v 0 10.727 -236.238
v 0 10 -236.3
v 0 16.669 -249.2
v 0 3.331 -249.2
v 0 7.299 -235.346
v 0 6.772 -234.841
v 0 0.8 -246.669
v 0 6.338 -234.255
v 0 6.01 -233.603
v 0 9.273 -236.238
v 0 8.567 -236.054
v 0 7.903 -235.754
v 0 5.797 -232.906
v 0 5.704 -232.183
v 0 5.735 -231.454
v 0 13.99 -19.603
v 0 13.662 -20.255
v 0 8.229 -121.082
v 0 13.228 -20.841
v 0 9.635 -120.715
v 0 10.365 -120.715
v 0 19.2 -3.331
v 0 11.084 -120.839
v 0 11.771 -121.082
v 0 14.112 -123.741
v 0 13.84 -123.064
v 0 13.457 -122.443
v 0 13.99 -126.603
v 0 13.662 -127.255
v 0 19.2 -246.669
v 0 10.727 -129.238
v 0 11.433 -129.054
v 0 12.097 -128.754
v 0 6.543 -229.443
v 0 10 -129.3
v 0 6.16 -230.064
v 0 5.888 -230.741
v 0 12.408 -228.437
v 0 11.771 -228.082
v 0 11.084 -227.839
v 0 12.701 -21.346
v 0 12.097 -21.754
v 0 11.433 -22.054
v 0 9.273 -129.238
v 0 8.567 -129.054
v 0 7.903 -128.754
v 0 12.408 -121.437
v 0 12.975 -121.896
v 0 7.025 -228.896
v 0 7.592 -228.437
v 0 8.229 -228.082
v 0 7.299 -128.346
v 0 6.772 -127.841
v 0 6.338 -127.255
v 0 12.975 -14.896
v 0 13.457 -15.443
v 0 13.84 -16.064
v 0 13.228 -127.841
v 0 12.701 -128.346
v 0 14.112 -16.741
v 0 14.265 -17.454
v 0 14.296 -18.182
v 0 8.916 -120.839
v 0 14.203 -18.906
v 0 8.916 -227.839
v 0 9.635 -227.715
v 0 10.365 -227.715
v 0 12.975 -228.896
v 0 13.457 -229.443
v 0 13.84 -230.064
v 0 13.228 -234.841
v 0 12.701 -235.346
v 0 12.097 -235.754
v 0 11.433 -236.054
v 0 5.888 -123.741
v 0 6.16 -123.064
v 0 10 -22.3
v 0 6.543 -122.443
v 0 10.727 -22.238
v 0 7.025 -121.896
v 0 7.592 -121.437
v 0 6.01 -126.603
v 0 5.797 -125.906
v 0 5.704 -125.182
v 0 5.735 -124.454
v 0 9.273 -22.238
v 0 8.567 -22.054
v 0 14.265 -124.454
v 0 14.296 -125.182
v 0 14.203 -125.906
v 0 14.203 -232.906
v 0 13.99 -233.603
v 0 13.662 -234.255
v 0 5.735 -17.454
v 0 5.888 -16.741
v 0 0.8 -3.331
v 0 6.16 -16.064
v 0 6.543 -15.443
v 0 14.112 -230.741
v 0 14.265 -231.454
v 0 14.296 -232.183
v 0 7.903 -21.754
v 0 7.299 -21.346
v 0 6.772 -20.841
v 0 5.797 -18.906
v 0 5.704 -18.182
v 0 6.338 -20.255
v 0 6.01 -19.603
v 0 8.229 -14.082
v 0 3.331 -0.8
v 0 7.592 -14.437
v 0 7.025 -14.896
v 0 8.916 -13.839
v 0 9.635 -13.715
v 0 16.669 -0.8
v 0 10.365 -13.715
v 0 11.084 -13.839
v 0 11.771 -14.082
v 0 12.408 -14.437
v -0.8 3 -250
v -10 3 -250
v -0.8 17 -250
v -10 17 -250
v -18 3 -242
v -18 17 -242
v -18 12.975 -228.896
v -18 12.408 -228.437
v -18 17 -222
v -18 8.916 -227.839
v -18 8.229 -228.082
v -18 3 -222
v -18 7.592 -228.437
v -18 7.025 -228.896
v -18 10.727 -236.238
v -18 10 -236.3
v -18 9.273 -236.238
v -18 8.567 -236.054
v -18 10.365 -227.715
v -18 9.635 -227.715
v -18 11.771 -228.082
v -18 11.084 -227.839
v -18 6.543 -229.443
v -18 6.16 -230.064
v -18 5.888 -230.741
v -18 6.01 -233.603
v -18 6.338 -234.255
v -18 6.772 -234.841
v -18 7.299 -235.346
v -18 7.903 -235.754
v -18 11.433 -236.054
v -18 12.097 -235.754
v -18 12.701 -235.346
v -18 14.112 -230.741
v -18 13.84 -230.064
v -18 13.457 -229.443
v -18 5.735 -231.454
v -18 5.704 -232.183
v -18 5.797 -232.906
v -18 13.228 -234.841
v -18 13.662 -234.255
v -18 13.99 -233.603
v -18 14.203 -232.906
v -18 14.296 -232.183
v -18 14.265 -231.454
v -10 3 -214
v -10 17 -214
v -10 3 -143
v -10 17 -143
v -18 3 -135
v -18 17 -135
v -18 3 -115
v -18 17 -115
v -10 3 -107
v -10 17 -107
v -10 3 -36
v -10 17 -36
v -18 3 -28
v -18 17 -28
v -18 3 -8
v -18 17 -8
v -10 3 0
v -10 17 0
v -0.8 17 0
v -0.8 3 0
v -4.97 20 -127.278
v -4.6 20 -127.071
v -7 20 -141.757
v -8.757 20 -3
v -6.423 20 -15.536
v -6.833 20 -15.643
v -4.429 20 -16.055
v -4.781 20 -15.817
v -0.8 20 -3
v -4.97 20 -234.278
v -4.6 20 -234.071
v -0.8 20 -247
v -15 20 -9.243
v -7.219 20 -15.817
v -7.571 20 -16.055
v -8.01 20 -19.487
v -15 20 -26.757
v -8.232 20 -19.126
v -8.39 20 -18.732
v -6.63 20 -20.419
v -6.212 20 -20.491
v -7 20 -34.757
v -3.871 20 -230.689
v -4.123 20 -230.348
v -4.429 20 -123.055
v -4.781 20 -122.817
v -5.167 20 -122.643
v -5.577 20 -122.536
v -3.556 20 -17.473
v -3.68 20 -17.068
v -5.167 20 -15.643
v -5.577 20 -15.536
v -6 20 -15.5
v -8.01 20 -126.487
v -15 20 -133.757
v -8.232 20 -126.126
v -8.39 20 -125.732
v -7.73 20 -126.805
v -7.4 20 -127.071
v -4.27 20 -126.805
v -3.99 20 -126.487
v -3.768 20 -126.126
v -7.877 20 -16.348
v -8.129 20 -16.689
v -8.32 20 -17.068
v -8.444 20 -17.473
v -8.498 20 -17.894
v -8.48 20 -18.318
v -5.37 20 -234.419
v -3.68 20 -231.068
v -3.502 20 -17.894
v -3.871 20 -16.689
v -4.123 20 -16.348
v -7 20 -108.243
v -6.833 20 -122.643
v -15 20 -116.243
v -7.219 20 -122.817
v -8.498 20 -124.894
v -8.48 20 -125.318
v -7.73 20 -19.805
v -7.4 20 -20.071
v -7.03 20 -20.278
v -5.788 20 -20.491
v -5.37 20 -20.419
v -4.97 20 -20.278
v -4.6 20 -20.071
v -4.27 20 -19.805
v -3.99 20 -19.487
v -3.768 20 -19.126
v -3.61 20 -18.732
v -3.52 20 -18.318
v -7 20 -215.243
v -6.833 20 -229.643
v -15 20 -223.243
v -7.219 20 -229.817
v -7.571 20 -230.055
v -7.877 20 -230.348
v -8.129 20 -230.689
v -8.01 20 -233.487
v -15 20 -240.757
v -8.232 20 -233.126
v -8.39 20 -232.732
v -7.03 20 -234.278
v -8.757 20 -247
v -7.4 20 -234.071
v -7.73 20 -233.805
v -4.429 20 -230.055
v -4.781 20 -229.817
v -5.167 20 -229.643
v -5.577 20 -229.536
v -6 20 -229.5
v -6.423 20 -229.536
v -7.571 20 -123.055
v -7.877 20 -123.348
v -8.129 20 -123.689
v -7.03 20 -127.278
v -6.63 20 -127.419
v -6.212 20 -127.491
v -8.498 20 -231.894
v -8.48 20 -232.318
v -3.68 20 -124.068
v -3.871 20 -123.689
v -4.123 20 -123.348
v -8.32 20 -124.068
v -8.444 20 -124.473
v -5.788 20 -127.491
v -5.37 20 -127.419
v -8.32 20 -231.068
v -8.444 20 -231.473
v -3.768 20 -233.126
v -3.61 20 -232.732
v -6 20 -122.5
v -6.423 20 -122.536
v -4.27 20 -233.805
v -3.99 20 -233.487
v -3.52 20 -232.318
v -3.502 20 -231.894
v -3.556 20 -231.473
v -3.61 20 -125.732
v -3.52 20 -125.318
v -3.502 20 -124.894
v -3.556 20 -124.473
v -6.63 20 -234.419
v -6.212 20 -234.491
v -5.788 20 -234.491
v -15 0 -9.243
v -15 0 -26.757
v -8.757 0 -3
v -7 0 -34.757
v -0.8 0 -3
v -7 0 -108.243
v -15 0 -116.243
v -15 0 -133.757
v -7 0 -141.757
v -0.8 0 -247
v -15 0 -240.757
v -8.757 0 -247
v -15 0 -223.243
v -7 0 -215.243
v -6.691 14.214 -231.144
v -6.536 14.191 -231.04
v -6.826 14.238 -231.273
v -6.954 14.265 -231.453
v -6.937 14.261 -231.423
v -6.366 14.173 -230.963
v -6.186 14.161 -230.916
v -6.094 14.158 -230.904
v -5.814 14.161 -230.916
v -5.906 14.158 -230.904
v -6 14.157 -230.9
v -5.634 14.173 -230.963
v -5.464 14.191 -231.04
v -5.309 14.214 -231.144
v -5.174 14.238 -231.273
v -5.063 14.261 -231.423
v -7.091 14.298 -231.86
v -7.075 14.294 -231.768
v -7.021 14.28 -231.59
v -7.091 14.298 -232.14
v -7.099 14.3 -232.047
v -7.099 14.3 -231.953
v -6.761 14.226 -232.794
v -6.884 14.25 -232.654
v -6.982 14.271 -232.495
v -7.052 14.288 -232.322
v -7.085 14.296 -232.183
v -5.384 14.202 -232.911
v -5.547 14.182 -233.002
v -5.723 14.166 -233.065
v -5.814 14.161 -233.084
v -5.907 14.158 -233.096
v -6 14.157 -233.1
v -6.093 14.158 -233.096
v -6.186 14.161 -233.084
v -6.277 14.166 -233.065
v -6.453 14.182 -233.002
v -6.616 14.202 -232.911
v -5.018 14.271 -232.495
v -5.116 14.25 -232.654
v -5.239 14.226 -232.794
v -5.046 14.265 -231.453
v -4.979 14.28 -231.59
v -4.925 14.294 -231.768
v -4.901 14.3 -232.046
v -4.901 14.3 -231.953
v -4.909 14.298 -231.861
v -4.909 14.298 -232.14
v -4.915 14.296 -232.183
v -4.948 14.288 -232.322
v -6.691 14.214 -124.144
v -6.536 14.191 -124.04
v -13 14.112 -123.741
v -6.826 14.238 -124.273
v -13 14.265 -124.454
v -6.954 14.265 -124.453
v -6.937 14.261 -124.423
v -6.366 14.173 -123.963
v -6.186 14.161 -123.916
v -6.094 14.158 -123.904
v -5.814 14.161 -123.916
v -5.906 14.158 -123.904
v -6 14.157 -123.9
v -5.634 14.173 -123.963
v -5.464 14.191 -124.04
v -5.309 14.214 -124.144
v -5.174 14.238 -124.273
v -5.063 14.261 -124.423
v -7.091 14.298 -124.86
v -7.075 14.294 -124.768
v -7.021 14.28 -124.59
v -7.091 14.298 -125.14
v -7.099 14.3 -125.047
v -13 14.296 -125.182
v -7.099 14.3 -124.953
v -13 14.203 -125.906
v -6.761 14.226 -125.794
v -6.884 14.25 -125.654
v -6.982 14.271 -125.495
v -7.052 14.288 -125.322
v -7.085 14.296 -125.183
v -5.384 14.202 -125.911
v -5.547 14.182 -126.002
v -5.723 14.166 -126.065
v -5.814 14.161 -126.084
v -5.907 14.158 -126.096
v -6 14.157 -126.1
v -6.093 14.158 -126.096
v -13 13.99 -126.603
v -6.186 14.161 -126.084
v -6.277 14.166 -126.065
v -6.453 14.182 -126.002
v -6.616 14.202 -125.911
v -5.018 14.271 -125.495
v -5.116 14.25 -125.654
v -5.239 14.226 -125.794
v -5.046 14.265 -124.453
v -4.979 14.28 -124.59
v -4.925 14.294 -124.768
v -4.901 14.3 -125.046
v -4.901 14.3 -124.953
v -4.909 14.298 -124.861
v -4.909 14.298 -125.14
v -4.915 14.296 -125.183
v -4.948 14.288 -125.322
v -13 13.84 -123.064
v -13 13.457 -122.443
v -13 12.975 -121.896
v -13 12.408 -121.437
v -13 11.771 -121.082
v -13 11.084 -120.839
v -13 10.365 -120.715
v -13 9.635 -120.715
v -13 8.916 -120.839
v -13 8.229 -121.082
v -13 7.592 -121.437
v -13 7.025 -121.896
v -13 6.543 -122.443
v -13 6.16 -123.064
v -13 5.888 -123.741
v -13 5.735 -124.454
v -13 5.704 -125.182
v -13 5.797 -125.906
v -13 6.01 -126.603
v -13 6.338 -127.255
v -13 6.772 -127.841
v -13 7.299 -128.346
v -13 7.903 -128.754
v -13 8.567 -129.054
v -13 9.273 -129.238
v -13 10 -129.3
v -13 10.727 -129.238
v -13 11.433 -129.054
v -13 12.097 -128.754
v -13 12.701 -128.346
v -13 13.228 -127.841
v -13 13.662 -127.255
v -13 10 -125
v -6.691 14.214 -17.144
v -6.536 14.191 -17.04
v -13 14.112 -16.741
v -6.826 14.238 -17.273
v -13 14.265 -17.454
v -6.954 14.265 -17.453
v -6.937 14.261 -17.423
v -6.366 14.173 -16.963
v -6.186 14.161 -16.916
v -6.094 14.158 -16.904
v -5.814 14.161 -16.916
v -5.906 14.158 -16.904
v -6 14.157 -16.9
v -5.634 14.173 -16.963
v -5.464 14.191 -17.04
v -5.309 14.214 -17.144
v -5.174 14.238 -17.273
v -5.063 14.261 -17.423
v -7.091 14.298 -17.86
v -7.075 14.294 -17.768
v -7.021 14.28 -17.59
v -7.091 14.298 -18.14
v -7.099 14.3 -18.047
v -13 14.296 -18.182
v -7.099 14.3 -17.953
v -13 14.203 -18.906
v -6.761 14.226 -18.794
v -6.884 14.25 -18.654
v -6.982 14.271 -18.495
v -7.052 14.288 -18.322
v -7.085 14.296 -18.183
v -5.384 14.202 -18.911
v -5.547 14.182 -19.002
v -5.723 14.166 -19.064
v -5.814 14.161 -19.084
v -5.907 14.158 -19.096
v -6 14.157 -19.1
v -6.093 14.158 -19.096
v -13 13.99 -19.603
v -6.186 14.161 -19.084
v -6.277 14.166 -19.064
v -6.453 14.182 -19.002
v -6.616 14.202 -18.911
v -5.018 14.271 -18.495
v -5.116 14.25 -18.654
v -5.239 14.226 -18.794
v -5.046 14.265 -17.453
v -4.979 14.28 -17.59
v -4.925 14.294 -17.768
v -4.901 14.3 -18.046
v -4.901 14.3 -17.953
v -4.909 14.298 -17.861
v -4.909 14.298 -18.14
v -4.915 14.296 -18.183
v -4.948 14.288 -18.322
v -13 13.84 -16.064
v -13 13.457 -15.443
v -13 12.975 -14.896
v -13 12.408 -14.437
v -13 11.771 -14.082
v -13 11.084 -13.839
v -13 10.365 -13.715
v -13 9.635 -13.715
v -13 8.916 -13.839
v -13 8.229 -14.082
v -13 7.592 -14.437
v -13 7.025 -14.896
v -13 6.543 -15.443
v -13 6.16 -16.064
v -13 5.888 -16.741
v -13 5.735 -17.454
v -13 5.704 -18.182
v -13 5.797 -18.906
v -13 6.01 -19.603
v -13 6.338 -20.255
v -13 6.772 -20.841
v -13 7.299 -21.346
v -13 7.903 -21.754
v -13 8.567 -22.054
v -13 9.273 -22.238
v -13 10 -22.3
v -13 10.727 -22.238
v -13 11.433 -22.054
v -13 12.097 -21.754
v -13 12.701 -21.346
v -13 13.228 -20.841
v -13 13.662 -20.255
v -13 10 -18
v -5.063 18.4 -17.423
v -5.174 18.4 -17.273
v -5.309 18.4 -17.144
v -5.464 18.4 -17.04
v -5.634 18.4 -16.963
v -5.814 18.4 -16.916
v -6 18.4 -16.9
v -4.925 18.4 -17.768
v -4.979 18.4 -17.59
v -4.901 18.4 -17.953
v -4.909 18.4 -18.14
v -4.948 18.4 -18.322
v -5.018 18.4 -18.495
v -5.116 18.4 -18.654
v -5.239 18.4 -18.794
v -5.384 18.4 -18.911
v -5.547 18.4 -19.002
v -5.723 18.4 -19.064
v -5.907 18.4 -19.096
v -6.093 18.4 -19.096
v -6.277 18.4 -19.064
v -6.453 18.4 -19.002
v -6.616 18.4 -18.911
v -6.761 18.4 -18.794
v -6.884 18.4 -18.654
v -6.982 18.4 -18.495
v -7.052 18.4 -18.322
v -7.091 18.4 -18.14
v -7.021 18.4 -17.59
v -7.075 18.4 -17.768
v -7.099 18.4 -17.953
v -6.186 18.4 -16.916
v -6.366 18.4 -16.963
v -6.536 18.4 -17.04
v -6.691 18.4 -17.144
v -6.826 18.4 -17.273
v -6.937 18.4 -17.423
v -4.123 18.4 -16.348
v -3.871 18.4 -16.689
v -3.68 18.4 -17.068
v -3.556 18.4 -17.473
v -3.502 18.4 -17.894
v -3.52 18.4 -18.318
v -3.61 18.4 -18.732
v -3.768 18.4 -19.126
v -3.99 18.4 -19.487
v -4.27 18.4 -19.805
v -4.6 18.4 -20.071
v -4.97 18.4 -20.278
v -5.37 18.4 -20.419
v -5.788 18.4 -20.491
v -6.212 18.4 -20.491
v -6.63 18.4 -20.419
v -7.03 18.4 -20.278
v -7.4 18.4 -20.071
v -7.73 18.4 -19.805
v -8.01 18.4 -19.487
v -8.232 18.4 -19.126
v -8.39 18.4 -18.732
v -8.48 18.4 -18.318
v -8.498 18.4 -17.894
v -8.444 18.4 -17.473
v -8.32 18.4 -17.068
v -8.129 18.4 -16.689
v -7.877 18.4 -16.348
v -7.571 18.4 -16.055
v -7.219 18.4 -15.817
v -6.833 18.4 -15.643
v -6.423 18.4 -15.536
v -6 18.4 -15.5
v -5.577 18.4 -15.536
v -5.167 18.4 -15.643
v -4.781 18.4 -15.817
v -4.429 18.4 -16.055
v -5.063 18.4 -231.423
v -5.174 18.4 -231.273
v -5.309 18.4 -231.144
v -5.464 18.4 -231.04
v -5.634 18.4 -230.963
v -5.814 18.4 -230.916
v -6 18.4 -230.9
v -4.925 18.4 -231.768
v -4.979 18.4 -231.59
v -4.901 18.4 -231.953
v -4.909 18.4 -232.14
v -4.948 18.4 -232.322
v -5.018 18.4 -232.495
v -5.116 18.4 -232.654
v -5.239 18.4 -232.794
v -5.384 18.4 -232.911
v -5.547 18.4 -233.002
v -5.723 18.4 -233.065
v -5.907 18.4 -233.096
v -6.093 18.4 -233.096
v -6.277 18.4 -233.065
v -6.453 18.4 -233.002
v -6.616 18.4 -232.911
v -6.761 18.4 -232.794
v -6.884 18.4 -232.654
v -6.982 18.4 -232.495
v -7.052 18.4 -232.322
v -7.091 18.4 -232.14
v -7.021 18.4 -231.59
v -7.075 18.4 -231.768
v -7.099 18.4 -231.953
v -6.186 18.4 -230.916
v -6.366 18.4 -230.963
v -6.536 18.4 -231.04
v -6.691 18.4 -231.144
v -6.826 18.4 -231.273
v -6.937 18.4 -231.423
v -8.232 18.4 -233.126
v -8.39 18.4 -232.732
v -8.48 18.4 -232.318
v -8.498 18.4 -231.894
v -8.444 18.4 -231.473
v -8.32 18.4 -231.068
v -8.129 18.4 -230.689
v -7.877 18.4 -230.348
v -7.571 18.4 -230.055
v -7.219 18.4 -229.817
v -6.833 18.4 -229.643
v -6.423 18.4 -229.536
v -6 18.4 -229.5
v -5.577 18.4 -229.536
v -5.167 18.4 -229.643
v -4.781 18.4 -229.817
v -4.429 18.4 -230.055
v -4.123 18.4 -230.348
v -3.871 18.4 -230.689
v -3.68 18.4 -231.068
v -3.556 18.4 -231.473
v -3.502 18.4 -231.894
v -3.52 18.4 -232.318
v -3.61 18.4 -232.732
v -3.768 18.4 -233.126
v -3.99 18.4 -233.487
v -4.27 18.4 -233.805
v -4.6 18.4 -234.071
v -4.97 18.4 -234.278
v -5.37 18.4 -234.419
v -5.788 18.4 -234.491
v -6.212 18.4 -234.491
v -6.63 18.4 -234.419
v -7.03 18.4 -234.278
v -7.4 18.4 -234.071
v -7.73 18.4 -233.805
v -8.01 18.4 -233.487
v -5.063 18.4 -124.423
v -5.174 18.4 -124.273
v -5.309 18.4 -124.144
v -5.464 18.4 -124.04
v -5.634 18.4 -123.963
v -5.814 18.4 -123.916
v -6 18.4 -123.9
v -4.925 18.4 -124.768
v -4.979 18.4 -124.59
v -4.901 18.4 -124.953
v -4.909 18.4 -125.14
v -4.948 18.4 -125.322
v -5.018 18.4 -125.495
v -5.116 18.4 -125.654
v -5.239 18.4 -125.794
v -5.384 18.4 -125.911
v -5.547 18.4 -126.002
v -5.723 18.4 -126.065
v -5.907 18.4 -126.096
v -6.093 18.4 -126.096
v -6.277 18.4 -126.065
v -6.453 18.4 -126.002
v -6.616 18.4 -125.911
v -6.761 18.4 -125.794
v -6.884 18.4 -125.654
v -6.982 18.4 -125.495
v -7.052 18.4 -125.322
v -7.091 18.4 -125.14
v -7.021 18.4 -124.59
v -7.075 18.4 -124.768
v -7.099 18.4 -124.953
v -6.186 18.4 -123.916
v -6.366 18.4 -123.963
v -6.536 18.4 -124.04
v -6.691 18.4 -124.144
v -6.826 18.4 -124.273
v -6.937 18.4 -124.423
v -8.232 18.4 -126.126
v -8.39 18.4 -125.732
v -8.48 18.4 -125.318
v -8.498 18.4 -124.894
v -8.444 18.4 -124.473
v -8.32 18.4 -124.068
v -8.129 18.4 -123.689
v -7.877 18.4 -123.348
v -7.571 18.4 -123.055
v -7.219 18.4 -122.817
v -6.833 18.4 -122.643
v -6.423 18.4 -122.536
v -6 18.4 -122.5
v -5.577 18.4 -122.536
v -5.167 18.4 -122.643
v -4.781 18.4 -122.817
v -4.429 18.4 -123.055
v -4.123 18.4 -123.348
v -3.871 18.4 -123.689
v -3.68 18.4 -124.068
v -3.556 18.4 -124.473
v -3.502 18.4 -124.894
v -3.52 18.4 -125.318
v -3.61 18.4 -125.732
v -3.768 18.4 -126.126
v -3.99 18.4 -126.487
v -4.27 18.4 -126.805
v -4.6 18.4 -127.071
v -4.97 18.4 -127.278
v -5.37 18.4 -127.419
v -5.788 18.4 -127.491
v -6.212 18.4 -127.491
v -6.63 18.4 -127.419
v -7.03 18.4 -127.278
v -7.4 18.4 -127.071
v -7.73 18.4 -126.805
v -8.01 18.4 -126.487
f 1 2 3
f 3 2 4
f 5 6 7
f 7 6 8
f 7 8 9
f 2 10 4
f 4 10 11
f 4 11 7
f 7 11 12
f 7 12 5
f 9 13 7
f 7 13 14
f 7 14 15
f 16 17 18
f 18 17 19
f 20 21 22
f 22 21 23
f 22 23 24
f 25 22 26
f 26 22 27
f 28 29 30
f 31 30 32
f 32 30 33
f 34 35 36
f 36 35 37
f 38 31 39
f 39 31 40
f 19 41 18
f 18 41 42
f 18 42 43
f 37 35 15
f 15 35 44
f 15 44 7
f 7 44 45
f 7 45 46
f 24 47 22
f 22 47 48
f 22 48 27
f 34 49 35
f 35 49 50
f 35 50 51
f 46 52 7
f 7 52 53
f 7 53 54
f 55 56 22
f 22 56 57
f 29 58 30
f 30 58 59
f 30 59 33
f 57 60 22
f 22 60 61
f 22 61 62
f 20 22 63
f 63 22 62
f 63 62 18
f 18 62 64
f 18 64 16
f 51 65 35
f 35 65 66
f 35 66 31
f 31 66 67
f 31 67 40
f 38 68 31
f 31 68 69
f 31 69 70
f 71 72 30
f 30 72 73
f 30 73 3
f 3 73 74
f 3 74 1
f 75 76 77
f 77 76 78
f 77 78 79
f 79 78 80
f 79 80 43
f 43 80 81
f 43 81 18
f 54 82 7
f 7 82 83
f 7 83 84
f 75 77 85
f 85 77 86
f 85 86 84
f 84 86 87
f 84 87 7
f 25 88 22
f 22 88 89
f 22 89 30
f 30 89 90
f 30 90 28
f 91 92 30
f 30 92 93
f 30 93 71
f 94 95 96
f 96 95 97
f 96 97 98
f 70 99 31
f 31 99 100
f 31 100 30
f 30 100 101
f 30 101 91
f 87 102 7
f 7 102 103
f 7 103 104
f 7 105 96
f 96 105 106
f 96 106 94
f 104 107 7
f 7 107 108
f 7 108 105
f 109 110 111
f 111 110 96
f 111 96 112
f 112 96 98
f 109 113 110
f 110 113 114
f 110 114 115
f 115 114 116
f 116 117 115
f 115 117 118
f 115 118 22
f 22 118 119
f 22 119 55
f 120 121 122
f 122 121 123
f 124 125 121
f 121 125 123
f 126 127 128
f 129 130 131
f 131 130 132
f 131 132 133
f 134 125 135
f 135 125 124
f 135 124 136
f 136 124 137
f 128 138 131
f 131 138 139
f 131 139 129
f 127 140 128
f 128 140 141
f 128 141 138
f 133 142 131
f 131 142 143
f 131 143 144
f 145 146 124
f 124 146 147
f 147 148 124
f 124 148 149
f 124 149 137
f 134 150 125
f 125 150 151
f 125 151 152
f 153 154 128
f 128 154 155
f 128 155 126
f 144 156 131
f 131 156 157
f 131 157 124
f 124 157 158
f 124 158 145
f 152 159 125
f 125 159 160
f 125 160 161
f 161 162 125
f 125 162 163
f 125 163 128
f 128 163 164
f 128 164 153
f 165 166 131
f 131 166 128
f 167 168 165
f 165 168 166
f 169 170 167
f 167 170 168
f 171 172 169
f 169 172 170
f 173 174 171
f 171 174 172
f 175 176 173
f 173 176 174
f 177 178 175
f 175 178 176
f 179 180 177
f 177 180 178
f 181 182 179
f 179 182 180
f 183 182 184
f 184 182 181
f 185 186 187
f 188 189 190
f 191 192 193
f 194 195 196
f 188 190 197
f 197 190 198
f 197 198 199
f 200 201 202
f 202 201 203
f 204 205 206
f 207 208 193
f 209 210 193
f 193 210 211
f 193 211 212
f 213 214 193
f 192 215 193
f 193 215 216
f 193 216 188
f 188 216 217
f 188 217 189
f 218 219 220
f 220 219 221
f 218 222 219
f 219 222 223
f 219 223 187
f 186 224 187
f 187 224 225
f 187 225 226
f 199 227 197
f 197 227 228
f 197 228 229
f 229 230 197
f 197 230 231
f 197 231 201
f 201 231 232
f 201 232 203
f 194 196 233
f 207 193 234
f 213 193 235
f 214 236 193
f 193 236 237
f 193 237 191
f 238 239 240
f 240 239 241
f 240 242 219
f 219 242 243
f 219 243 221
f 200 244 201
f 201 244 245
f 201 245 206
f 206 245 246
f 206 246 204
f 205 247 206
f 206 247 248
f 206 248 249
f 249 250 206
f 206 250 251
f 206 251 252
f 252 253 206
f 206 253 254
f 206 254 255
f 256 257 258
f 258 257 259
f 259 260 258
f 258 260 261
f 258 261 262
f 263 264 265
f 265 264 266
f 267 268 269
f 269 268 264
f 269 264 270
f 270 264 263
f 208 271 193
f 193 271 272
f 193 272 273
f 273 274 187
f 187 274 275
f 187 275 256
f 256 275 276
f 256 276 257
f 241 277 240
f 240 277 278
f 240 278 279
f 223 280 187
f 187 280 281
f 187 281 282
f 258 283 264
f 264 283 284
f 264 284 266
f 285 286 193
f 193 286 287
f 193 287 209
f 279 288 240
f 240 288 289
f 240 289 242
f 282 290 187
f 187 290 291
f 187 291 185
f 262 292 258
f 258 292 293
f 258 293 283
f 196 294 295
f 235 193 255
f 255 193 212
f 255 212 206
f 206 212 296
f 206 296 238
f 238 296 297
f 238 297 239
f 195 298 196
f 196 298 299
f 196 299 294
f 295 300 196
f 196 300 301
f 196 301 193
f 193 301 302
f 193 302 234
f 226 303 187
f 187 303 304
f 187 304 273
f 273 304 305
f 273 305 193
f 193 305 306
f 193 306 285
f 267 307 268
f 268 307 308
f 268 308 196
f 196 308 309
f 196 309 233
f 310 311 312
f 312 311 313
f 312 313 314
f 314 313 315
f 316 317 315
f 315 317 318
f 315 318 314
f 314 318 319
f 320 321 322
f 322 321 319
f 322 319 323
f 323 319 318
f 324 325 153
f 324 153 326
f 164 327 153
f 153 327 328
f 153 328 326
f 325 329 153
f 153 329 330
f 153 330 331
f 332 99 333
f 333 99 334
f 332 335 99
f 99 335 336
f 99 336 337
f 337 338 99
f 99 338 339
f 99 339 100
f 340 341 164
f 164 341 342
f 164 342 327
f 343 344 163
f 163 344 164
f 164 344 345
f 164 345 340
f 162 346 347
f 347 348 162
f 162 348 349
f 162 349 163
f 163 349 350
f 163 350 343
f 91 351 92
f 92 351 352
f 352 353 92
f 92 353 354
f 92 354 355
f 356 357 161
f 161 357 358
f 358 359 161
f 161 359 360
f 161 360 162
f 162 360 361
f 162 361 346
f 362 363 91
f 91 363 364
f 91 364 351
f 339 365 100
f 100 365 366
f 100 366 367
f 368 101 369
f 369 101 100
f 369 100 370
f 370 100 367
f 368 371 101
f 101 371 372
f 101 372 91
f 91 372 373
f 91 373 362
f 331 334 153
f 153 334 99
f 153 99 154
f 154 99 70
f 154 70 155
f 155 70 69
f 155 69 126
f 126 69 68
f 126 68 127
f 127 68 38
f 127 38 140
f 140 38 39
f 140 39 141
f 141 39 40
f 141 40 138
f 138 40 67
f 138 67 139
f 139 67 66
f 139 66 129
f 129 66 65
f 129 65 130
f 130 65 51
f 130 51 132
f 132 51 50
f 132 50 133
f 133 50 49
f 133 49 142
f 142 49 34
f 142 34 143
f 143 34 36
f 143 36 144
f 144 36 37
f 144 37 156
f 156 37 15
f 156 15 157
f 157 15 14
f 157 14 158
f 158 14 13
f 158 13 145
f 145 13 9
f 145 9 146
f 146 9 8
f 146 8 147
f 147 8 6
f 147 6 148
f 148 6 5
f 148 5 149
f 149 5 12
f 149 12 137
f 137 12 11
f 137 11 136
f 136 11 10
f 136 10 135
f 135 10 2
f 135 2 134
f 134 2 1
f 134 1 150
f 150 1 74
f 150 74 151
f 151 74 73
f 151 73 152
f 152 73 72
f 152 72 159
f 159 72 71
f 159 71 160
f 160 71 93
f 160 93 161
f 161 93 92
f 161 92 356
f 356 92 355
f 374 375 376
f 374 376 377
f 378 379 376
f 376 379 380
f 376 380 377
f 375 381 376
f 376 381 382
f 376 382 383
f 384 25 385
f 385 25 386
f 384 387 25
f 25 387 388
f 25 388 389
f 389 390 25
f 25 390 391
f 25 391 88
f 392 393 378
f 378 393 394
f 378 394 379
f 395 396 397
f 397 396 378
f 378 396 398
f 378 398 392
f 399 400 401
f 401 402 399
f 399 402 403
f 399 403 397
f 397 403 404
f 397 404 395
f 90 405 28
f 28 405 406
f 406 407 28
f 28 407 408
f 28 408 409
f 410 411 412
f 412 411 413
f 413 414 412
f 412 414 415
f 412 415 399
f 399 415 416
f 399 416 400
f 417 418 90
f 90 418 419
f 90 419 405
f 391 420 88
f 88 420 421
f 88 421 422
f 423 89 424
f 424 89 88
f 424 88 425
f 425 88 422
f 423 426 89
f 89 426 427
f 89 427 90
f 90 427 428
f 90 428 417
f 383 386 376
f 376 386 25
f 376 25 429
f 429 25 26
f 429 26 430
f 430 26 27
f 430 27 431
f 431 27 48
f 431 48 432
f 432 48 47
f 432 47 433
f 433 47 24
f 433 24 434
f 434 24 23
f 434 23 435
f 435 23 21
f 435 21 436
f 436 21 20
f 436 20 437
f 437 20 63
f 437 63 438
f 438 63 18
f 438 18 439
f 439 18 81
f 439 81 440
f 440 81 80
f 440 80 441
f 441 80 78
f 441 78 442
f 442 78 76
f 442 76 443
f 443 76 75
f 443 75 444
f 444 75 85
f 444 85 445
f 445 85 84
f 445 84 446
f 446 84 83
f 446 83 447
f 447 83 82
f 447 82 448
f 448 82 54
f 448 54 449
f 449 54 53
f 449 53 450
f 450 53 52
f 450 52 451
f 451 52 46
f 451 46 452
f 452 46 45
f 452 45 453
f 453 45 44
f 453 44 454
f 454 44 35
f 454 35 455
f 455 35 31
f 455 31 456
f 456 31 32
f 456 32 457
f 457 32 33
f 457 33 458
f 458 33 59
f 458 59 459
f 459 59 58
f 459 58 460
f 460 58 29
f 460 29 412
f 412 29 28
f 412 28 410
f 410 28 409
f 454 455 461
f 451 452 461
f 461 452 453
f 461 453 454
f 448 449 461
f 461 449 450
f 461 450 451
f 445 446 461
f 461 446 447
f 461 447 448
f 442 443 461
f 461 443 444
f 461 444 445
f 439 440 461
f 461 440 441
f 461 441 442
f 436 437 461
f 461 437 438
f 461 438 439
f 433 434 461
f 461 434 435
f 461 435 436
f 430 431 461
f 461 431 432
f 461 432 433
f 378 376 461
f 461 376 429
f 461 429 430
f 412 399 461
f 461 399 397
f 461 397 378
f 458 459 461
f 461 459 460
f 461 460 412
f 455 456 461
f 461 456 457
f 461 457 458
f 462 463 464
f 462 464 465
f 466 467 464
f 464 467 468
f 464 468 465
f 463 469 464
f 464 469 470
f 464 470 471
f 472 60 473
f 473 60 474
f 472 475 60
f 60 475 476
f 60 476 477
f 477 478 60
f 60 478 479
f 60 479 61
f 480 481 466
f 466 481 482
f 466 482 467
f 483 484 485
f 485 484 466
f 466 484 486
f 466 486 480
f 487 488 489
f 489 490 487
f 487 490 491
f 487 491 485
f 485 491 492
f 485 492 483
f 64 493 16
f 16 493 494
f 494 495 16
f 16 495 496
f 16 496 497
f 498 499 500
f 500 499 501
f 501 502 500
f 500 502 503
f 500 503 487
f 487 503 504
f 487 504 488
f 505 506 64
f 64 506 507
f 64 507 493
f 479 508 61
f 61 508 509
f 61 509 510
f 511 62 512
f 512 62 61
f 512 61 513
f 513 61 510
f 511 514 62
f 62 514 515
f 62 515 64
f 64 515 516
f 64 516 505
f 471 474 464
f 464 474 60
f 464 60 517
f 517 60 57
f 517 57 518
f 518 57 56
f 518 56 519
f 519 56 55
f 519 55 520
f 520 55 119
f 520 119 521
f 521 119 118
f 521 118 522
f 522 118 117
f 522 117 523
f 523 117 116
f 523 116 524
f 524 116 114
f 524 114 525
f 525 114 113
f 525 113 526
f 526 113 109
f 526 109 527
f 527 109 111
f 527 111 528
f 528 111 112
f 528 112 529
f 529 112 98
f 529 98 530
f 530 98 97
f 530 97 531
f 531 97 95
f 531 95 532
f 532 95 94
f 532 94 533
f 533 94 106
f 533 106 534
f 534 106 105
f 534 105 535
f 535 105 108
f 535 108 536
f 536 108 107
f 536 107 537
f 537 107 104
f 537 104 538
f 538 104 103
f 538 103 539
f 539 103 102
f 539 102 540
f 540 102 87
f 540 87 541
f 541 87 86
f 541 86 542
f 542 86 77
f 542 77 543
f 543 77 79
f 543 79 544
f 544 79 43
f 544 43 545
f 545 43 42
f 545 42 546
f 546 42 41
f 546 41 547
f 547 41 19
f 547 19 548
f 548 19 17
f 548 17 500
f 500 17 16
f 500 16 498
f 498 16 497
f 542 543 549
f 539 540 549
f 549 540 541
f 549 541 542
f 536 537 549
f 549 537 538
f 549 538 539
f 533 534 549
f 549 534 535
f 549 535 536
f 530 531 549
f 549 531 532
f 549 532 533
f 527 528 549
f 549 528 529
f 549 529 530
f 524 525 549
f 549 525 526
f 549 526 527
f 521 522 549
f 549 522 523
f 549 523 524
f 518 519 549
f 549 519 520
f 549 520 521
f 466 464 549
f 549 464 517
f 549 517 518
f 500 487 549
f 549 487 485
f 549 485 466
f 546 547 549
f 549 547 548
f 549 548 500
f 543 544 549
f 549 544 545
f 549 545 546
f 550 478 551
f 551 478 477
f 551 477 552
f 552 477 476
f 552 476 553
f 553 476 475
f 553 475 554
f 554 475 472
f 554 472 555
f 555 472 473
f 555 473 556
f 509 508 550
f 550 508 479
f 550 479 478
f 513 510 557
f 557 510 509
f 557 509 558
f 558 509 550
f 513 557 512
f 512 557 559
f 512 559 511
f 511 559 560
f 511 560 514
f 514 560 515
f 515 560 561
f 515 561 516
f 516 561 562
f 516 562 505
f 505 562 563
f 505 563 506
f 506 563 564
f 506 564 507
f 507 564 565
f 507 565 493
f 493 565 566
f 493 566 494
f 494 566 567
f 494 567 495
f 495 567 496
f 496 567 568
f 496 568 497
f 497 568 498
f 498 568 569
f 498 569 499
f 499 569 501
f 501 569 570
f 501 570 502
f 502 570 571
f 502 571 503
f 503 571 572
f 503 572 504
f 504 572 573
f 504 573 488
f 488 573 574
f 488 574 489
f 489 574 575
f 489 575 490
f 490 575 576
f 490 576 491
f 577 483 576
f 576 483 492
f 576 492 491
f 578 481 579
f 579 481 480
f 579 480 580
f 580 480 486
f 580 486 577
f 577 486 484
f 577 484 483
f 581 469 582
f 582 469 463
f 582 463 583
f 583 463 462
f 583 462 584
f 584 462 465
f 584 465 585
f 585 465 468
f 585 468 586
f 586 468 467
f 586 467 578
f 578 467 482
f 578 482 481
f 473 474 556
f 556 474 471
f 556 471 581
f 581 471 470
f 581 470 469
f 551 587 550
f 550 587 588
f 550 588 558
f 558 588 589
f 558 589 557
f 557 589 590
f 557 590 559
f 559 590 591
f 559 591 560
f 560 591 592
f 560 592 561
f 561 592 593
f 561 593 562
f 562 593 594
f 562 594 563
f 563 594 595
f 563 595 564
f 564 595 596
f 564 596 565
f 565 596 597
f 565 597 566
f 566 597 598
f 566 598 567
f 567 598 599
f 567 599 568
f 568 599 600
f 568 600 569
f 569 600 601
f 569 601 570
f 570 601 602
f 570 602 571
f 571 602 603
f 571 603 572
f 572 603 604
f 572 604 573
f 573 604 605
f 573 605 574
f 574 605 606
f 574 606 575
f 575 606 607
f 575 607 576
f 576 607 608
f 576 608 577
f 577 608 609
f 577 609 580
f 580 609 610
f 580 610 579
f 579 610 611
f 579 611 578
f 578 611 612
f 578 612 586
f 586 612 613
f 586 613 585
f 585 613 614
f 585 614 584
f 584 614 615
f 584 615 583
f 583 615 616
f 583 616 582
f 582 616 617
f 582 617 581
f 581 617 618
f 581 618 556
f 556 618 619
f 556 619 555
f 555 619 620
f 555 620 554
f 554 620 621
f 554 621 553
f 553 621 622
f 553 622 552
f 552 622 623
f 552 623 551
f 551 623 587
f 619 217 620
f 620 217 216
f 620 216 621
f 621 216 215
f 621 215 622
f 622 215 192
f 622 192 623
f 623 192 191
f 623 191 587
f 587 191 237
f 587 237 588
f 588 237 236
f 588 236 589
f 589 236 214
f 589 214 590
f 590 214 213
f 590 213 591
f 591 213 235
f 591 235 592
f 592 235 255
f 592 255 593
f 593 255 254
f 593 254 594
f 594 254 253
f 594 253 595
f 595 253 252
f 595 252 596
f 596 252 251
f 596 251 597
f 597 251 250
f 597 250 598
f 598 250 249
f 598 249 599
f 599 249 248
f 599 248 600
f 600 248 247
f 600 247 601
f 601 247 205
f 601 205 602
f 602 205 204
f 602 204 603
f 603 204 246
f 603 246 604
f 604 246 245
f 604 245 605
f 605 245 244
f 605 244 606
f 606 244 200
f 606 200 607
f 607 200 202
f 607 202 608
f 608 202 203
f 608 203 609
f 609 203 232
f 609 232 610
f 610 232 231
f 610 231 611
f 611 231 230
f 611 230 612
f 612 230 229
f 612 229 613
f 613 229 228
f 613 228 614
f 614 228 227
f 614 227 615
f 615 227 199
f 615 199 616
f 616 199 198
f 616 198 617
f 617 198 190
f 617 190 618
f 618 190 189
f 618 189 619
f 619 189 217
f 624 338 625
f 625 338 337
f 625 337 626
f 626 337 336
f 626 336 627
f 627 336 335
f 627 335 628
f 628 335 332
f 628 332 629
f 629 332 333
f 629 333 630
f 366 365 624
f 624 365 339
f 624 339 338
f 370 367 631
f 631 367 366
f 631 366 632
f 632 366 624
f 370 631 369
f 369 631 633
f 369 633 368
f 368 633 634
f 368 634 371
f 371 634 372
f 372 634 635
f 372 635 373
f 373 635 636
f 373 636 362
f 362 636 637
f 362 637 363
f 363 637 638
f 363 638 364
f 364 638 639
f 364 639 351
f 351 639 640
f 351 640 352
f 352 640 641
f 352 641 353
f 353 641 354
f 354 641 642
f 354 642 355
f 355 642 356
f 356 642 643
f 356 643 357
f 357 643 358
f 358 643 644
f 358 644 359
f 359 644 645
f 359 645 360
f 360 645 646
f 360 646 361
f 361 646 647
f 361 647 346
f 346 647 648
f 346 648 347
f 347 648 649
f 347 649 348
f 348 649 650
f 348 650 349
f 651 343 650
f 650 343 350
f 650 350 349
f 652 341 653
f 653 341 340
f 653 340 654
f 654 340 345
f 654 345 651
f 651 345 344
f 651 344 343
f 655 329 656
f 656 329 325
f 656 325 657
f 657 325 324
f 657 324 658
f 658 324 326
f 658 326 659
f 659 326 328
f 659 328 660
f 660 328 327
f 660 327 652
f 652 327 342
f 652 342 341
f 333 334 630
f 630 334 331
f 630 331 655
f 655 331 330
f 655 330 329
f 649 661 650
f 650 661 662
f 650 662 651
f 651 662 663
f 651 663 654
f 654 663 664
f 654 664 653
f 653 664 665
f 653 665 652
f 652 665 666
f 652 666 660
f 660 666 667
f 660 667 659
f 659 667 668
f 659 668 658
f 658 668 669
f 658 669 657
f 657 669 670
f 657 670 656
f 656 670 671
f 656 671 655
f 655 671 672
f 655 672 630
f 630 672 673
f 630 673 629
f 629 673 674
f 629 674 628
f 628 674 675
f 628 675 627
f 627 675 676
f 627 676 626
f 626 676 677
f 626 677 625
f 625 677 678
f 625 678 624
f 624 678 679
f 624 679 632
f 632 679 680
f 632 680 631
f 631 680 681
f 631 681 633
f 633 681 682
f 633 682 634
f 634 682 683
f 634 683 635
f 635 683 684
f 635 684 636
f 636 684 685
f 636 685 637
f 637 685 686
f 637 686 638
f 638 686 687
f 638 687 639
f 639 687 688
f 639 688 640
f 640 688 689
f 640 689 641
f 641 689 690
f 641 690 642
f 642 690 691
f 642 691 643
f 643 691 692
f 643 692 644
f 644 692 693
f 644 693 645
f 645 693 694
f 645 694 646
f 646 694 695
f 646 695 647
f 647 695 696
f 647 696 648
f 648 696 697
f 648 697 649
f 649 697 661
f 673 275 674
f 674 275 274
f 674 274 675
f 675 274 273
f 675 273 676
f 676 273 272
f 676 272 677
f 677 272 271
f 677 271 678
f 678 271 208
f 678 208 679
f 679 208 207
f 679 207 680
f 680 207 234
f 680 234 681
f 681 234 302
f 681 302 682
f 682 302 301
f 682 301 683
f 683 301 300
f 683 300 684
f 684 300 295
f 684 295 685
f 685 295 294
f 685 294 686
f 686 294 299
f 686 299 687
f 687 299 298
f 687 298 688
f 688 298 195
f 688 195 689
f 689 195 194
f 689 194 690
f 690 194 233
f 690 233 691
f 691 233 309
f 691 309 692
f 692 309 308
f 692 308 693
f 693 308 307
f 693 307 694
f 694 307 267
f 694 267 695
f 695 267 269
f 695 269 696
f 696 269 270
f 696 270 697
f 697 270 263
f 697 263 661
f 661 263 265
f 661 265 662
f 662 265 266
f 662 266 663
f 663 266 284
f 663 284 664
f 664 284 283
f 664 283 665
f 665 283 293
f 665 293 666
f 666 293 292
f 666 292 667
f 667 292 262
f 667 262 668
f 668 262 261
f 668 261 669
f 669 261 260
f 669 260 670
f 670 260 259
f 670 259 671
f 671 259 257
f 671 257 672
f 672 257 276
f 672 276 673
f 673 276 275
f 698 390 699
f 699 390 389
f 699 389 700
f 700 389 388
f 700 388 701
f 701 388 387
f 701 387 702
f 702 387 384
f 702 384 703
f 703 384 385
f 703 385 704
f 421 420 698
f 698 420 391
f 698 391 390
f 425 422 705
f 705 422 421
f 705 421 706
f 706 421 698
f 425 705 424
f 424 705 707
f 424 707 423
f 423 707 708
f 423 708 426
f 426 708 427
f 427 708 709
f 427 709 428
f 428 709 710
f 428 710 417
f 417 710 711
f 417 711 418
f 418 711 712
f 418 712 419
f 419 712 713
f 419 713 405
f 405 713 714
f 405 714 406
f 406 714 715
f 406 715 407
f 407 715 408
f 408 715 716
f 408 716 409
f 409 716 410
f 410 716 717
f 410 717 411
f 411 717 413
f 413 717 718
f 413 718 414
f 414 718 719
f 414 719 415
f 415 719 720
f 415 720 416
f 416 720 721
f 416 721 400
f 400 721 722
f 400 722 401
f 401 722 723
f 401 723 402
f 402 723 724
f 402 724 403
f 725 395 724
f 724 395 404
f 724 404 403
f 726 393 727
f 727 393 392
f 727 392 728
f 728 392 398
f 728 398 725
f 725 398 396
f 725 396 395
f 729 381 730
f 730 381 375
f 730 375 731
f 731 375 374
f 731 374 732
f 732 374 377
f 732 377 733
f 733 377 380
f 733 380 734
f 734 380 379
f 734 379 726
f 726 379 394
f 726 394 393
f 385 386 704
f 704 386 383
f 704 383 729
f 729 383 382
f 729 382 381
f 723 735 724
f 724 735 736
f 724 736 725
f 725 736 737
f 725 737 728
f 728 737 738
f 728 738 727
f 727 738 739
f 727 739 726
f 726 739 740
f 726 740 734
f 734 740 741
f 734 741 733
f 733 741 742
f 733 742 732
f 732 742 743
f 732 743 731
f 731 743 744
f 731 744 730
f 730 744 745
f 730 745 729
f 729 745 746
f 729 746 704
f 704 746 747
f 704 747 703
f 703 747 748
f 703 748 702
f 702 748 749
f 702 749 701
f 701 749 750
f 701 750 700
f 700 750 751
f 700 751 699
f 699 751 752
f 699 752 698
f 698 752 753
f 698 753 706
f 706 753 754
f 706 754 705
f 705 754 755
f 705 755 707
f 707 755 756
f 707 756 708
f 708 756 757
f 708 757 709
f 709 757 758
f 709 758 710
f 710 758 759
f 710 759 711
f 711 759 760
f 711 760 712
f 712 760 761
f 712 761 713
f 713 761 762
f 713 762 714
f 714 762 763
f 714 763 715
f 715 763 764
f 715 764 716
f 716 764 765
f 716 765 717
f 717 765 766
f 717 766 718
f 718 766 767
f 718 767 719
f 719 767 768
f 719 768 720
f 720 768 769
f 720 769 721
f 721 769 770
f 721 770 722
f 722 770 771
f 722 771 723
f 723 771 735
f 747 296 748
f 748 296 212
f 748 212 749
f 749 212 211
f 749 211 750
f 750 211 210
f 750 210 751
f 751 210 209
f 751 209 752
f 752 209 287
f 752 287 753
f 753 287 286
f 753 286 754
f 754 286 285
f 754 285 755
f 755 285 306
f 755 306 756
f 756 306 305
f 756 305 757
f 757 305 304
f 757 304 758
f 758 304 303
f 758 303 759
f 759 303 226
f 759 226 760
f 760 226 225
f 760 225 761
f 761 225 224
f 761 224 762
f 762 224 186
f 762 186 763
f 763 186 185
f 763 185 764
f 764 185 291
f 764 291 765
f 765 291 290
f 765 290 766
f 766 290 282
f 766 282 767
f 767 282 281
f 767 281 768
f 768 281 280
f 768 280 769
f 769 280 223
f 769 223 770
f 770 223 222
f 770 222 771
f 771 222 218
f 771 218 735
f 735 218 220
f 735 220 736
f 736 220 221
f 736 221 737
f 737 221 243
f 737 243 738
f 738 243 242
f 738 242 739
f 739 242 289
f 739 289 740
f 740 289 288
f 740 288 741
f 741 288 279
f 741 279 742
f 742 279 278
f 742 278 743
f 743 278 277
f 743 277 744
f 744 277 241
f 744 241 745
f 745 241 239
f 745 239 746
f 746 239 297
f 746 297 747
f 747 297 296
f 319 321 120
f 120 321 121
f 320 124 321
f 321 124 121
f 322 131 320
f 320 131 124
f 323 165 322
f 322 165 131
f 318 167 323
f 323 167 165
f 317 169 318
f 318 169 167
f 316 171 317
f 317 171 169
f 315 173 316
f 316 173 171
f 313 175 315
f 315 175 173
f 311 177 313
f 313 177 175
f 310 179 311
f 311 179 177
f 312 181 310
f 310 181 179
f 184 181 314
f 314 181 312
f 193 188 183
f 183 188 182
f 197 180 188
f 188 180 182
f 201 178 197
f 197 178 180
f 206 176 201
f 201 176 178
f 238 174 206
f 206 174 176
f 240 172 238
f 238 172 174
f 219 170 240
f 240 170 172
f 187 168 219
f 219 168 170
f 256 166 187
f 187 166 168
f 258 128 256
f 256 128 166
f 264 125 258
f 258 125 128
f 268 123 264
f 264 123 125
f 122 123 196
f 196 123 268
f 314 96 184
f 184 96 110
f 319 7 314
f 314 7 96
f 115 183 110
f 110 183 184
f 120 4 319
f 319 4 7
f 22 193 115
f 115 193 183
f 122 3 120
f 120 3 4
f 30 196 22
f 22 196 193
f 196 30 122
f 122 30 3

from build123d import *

# Parameters (mm, degrees)
BOSS_EXTRUDE1_DEPTH                          = 20
SKETCH2_R                                    = 4.3
CUT_EXTRUDE1_DEPTH                           = 13
CBORE_START                                  = 18.4
CBORE_FOR_M2_PAN_HEAD_MACHINE_SCREW1_OUT_R   = 2.5
CBORE_FOR_M2_PAN_HEAD_MACHINE_SCREW1_DEPTH   = 1.6
CBORE_START_2                                = 14.156921837
CBORE_FOR_M2_PAN_HEAD_MACHINE_SCREW1_2_O_R   = 1.1
CBORE_FOR_M2_PAN_HEAD_MACHINE_SCREW1_2_DEPTH = 4.243078163
CHAMFER1_SIZE                                = 3
CHAMFER2_SIZE                                = 0.8
SKETCH2_5_R                                  = 4.3
CUT_EXTRUDE5_DEPTH                           = 252.443830706


# Read off the part's stored shape, not the designer's step: CBORE for M2 Pan Head Machine Screw1
with BuildPart() as part:
    # Sketch1 → Boss-Extrude1 (new body)
    with BuildSketch(Plane(origin=(0, 0, 0), x_dir=(1, 0, 0), z_dir=(0, 1, 0))):
        Polygon((-10, 214), (-10, 143), (-18, 135), (-18, 115), (-10, 107), (-10, 36), (-18, 28), (-18, 8), (-10, 0), (0, 0), (0, 250), (-10, 250), (-18, 242), (-18, 222), align=None)
    extrude(amount=BOSS_EXTRUDE1_DEPTH)

    # Sketch2 → Cut-Extrude1 (cut)
    with BuildSketch(Plane(origin=(0, 0, 0), x_dir=(0, 0, -1), z_dir=(1, 0, 0))):
        with Locations((18, 10)):
            Circle(SKETCH2_R)
        with Locations((125, 10)):
            Circle(SKETCH2_R)
        with Locations((232, 10)):
            Circle(SKETCH2_R)
    extrude(amount=-CUT_EXTRUDE1_DEPTH, mode=Mode.SUBTRACT)

    # CBORE for M2 Pan Head Machine Screw1 out → CBORE for M2 Pan Head Machine Screw1 (cut)
    with BuildSketch(Plane(origin=(0, 0, 0), x_dir=(1, 0, 0), z_dir=(0, 1, 0)).offset(CBORE_START)):
        with Locations((-6, 18)):
            Circle(CBORE_FOR_M2_PAN_HEAD_MACHINE_SCREW1_OUT_R)
        with Locations((-6, 232)):
            Circle(CBORE_FOR_M2_PAN_HEAD_MACHINE_SCREW1_OUT_R)
        with Locations((-6, 125)):
            Circle(CBORE_FOR_M2_PAN_HEAD_MACHINE_SCREW1_OUT_R)
    extrude(amount=CBORE_FOR_M2_PAN_HEAD_MACHINE_SCREW1_DEPTH, mode=Mode.SUBTRACT)

    # CBORE for M2 Pan Head Machine Screw1 2 o → CBORE for M2 Pan Head Machine Screw1 2 (cut)
    with BuildSketch(Plane(origin=(0, 0, 0), x_dir=(1, 0, 0), z_dir=(0, 1, 0)).offset(CBORE_START_2)):
        with Locations((-6, 18)):
            Circle(CBORE_FOR_M2_PAN_HEAD_MACHINE_SCREW1_2_O_R)
        with Locations((-6, 232)):
            Circle(CBORE_FOR_M2_PAN_HEAD_MACHINE_SCREW1_2_O_R)
        with Locations((-6, 125)):
            Circle(CBORE_FOR_M2_PAN_HEAD_MACHINE_SCREW1_2_O_R)
    extrude(amount=CBORE_FOR_M2_PAN_HEAD_MACHINE_SCREW1_2_DEPTH, mode=Mode.SUBTRACT)

    # Chamfer1
    chamfer1_edges = [part.edges().sort_by_distance(p)[0] for p in [
        (-14, 20, -246),
        (-5, 0, 0),
        (-14, 0, -4),
        (-18, 0, -18),
        (-14, 0, -32),
        (-10, 0, -71.5),
        (-14, 0, -111),
        (-18, 0, -125),
        (-14, 0, -139),
        (-18, 20, -232),
        (-10, 0, -178.5),
        (-14, 0, -218),
        (-18, 0, -232),
        (-14, 0, -246),
        (-5, 0, -250),
        (-14, 20, -218),
        (-10, 20, -178.5),
        (-14, 20, -139),
        (-18, 20, -125),
        (-14, 20, -111),
        (-10, 20, -71.5),
        (-14, 20, -32),
        (-18, 20, -18),
        (-14, 20, -4),
        (-5, 20, 0),
        (-5, 20, -250),
    ]]
    chamfer(chamfer1_edges, length=CHAMFER1_SIZE)

    # Chamfer2
    chamfer2_edges = [part.edges().sort_by_distance(p)[0] for p in [
        (0, 10, 0),
        (0, 0, -125),
        (0, 10, -250),
        (0, 20, -125),
        (0, 18.5, -1.5),
        (0, 18.5, -248.5),
        (0, 1.5, -248.5),
        (0, 1.5, -1.5),
    ]]
    chamfer(chamfer2_edges, length=CHAMFER2_SIZE)

    # Sketch2<5> → Cut-Extrude5 (cut, through all)
    with BuildSketch(Plane(origin=(0, 0, 0), x_dir=(0, 0, -1), z_dir=(1, 0, 0))):
        with Locations((232, 10)):
            Circle(SKETCH2_5_R)
    extrude(amount=-CUT_EXTRUDE5_DEPTH, mode=Mode.SUBTRACT)


solid = part.part
